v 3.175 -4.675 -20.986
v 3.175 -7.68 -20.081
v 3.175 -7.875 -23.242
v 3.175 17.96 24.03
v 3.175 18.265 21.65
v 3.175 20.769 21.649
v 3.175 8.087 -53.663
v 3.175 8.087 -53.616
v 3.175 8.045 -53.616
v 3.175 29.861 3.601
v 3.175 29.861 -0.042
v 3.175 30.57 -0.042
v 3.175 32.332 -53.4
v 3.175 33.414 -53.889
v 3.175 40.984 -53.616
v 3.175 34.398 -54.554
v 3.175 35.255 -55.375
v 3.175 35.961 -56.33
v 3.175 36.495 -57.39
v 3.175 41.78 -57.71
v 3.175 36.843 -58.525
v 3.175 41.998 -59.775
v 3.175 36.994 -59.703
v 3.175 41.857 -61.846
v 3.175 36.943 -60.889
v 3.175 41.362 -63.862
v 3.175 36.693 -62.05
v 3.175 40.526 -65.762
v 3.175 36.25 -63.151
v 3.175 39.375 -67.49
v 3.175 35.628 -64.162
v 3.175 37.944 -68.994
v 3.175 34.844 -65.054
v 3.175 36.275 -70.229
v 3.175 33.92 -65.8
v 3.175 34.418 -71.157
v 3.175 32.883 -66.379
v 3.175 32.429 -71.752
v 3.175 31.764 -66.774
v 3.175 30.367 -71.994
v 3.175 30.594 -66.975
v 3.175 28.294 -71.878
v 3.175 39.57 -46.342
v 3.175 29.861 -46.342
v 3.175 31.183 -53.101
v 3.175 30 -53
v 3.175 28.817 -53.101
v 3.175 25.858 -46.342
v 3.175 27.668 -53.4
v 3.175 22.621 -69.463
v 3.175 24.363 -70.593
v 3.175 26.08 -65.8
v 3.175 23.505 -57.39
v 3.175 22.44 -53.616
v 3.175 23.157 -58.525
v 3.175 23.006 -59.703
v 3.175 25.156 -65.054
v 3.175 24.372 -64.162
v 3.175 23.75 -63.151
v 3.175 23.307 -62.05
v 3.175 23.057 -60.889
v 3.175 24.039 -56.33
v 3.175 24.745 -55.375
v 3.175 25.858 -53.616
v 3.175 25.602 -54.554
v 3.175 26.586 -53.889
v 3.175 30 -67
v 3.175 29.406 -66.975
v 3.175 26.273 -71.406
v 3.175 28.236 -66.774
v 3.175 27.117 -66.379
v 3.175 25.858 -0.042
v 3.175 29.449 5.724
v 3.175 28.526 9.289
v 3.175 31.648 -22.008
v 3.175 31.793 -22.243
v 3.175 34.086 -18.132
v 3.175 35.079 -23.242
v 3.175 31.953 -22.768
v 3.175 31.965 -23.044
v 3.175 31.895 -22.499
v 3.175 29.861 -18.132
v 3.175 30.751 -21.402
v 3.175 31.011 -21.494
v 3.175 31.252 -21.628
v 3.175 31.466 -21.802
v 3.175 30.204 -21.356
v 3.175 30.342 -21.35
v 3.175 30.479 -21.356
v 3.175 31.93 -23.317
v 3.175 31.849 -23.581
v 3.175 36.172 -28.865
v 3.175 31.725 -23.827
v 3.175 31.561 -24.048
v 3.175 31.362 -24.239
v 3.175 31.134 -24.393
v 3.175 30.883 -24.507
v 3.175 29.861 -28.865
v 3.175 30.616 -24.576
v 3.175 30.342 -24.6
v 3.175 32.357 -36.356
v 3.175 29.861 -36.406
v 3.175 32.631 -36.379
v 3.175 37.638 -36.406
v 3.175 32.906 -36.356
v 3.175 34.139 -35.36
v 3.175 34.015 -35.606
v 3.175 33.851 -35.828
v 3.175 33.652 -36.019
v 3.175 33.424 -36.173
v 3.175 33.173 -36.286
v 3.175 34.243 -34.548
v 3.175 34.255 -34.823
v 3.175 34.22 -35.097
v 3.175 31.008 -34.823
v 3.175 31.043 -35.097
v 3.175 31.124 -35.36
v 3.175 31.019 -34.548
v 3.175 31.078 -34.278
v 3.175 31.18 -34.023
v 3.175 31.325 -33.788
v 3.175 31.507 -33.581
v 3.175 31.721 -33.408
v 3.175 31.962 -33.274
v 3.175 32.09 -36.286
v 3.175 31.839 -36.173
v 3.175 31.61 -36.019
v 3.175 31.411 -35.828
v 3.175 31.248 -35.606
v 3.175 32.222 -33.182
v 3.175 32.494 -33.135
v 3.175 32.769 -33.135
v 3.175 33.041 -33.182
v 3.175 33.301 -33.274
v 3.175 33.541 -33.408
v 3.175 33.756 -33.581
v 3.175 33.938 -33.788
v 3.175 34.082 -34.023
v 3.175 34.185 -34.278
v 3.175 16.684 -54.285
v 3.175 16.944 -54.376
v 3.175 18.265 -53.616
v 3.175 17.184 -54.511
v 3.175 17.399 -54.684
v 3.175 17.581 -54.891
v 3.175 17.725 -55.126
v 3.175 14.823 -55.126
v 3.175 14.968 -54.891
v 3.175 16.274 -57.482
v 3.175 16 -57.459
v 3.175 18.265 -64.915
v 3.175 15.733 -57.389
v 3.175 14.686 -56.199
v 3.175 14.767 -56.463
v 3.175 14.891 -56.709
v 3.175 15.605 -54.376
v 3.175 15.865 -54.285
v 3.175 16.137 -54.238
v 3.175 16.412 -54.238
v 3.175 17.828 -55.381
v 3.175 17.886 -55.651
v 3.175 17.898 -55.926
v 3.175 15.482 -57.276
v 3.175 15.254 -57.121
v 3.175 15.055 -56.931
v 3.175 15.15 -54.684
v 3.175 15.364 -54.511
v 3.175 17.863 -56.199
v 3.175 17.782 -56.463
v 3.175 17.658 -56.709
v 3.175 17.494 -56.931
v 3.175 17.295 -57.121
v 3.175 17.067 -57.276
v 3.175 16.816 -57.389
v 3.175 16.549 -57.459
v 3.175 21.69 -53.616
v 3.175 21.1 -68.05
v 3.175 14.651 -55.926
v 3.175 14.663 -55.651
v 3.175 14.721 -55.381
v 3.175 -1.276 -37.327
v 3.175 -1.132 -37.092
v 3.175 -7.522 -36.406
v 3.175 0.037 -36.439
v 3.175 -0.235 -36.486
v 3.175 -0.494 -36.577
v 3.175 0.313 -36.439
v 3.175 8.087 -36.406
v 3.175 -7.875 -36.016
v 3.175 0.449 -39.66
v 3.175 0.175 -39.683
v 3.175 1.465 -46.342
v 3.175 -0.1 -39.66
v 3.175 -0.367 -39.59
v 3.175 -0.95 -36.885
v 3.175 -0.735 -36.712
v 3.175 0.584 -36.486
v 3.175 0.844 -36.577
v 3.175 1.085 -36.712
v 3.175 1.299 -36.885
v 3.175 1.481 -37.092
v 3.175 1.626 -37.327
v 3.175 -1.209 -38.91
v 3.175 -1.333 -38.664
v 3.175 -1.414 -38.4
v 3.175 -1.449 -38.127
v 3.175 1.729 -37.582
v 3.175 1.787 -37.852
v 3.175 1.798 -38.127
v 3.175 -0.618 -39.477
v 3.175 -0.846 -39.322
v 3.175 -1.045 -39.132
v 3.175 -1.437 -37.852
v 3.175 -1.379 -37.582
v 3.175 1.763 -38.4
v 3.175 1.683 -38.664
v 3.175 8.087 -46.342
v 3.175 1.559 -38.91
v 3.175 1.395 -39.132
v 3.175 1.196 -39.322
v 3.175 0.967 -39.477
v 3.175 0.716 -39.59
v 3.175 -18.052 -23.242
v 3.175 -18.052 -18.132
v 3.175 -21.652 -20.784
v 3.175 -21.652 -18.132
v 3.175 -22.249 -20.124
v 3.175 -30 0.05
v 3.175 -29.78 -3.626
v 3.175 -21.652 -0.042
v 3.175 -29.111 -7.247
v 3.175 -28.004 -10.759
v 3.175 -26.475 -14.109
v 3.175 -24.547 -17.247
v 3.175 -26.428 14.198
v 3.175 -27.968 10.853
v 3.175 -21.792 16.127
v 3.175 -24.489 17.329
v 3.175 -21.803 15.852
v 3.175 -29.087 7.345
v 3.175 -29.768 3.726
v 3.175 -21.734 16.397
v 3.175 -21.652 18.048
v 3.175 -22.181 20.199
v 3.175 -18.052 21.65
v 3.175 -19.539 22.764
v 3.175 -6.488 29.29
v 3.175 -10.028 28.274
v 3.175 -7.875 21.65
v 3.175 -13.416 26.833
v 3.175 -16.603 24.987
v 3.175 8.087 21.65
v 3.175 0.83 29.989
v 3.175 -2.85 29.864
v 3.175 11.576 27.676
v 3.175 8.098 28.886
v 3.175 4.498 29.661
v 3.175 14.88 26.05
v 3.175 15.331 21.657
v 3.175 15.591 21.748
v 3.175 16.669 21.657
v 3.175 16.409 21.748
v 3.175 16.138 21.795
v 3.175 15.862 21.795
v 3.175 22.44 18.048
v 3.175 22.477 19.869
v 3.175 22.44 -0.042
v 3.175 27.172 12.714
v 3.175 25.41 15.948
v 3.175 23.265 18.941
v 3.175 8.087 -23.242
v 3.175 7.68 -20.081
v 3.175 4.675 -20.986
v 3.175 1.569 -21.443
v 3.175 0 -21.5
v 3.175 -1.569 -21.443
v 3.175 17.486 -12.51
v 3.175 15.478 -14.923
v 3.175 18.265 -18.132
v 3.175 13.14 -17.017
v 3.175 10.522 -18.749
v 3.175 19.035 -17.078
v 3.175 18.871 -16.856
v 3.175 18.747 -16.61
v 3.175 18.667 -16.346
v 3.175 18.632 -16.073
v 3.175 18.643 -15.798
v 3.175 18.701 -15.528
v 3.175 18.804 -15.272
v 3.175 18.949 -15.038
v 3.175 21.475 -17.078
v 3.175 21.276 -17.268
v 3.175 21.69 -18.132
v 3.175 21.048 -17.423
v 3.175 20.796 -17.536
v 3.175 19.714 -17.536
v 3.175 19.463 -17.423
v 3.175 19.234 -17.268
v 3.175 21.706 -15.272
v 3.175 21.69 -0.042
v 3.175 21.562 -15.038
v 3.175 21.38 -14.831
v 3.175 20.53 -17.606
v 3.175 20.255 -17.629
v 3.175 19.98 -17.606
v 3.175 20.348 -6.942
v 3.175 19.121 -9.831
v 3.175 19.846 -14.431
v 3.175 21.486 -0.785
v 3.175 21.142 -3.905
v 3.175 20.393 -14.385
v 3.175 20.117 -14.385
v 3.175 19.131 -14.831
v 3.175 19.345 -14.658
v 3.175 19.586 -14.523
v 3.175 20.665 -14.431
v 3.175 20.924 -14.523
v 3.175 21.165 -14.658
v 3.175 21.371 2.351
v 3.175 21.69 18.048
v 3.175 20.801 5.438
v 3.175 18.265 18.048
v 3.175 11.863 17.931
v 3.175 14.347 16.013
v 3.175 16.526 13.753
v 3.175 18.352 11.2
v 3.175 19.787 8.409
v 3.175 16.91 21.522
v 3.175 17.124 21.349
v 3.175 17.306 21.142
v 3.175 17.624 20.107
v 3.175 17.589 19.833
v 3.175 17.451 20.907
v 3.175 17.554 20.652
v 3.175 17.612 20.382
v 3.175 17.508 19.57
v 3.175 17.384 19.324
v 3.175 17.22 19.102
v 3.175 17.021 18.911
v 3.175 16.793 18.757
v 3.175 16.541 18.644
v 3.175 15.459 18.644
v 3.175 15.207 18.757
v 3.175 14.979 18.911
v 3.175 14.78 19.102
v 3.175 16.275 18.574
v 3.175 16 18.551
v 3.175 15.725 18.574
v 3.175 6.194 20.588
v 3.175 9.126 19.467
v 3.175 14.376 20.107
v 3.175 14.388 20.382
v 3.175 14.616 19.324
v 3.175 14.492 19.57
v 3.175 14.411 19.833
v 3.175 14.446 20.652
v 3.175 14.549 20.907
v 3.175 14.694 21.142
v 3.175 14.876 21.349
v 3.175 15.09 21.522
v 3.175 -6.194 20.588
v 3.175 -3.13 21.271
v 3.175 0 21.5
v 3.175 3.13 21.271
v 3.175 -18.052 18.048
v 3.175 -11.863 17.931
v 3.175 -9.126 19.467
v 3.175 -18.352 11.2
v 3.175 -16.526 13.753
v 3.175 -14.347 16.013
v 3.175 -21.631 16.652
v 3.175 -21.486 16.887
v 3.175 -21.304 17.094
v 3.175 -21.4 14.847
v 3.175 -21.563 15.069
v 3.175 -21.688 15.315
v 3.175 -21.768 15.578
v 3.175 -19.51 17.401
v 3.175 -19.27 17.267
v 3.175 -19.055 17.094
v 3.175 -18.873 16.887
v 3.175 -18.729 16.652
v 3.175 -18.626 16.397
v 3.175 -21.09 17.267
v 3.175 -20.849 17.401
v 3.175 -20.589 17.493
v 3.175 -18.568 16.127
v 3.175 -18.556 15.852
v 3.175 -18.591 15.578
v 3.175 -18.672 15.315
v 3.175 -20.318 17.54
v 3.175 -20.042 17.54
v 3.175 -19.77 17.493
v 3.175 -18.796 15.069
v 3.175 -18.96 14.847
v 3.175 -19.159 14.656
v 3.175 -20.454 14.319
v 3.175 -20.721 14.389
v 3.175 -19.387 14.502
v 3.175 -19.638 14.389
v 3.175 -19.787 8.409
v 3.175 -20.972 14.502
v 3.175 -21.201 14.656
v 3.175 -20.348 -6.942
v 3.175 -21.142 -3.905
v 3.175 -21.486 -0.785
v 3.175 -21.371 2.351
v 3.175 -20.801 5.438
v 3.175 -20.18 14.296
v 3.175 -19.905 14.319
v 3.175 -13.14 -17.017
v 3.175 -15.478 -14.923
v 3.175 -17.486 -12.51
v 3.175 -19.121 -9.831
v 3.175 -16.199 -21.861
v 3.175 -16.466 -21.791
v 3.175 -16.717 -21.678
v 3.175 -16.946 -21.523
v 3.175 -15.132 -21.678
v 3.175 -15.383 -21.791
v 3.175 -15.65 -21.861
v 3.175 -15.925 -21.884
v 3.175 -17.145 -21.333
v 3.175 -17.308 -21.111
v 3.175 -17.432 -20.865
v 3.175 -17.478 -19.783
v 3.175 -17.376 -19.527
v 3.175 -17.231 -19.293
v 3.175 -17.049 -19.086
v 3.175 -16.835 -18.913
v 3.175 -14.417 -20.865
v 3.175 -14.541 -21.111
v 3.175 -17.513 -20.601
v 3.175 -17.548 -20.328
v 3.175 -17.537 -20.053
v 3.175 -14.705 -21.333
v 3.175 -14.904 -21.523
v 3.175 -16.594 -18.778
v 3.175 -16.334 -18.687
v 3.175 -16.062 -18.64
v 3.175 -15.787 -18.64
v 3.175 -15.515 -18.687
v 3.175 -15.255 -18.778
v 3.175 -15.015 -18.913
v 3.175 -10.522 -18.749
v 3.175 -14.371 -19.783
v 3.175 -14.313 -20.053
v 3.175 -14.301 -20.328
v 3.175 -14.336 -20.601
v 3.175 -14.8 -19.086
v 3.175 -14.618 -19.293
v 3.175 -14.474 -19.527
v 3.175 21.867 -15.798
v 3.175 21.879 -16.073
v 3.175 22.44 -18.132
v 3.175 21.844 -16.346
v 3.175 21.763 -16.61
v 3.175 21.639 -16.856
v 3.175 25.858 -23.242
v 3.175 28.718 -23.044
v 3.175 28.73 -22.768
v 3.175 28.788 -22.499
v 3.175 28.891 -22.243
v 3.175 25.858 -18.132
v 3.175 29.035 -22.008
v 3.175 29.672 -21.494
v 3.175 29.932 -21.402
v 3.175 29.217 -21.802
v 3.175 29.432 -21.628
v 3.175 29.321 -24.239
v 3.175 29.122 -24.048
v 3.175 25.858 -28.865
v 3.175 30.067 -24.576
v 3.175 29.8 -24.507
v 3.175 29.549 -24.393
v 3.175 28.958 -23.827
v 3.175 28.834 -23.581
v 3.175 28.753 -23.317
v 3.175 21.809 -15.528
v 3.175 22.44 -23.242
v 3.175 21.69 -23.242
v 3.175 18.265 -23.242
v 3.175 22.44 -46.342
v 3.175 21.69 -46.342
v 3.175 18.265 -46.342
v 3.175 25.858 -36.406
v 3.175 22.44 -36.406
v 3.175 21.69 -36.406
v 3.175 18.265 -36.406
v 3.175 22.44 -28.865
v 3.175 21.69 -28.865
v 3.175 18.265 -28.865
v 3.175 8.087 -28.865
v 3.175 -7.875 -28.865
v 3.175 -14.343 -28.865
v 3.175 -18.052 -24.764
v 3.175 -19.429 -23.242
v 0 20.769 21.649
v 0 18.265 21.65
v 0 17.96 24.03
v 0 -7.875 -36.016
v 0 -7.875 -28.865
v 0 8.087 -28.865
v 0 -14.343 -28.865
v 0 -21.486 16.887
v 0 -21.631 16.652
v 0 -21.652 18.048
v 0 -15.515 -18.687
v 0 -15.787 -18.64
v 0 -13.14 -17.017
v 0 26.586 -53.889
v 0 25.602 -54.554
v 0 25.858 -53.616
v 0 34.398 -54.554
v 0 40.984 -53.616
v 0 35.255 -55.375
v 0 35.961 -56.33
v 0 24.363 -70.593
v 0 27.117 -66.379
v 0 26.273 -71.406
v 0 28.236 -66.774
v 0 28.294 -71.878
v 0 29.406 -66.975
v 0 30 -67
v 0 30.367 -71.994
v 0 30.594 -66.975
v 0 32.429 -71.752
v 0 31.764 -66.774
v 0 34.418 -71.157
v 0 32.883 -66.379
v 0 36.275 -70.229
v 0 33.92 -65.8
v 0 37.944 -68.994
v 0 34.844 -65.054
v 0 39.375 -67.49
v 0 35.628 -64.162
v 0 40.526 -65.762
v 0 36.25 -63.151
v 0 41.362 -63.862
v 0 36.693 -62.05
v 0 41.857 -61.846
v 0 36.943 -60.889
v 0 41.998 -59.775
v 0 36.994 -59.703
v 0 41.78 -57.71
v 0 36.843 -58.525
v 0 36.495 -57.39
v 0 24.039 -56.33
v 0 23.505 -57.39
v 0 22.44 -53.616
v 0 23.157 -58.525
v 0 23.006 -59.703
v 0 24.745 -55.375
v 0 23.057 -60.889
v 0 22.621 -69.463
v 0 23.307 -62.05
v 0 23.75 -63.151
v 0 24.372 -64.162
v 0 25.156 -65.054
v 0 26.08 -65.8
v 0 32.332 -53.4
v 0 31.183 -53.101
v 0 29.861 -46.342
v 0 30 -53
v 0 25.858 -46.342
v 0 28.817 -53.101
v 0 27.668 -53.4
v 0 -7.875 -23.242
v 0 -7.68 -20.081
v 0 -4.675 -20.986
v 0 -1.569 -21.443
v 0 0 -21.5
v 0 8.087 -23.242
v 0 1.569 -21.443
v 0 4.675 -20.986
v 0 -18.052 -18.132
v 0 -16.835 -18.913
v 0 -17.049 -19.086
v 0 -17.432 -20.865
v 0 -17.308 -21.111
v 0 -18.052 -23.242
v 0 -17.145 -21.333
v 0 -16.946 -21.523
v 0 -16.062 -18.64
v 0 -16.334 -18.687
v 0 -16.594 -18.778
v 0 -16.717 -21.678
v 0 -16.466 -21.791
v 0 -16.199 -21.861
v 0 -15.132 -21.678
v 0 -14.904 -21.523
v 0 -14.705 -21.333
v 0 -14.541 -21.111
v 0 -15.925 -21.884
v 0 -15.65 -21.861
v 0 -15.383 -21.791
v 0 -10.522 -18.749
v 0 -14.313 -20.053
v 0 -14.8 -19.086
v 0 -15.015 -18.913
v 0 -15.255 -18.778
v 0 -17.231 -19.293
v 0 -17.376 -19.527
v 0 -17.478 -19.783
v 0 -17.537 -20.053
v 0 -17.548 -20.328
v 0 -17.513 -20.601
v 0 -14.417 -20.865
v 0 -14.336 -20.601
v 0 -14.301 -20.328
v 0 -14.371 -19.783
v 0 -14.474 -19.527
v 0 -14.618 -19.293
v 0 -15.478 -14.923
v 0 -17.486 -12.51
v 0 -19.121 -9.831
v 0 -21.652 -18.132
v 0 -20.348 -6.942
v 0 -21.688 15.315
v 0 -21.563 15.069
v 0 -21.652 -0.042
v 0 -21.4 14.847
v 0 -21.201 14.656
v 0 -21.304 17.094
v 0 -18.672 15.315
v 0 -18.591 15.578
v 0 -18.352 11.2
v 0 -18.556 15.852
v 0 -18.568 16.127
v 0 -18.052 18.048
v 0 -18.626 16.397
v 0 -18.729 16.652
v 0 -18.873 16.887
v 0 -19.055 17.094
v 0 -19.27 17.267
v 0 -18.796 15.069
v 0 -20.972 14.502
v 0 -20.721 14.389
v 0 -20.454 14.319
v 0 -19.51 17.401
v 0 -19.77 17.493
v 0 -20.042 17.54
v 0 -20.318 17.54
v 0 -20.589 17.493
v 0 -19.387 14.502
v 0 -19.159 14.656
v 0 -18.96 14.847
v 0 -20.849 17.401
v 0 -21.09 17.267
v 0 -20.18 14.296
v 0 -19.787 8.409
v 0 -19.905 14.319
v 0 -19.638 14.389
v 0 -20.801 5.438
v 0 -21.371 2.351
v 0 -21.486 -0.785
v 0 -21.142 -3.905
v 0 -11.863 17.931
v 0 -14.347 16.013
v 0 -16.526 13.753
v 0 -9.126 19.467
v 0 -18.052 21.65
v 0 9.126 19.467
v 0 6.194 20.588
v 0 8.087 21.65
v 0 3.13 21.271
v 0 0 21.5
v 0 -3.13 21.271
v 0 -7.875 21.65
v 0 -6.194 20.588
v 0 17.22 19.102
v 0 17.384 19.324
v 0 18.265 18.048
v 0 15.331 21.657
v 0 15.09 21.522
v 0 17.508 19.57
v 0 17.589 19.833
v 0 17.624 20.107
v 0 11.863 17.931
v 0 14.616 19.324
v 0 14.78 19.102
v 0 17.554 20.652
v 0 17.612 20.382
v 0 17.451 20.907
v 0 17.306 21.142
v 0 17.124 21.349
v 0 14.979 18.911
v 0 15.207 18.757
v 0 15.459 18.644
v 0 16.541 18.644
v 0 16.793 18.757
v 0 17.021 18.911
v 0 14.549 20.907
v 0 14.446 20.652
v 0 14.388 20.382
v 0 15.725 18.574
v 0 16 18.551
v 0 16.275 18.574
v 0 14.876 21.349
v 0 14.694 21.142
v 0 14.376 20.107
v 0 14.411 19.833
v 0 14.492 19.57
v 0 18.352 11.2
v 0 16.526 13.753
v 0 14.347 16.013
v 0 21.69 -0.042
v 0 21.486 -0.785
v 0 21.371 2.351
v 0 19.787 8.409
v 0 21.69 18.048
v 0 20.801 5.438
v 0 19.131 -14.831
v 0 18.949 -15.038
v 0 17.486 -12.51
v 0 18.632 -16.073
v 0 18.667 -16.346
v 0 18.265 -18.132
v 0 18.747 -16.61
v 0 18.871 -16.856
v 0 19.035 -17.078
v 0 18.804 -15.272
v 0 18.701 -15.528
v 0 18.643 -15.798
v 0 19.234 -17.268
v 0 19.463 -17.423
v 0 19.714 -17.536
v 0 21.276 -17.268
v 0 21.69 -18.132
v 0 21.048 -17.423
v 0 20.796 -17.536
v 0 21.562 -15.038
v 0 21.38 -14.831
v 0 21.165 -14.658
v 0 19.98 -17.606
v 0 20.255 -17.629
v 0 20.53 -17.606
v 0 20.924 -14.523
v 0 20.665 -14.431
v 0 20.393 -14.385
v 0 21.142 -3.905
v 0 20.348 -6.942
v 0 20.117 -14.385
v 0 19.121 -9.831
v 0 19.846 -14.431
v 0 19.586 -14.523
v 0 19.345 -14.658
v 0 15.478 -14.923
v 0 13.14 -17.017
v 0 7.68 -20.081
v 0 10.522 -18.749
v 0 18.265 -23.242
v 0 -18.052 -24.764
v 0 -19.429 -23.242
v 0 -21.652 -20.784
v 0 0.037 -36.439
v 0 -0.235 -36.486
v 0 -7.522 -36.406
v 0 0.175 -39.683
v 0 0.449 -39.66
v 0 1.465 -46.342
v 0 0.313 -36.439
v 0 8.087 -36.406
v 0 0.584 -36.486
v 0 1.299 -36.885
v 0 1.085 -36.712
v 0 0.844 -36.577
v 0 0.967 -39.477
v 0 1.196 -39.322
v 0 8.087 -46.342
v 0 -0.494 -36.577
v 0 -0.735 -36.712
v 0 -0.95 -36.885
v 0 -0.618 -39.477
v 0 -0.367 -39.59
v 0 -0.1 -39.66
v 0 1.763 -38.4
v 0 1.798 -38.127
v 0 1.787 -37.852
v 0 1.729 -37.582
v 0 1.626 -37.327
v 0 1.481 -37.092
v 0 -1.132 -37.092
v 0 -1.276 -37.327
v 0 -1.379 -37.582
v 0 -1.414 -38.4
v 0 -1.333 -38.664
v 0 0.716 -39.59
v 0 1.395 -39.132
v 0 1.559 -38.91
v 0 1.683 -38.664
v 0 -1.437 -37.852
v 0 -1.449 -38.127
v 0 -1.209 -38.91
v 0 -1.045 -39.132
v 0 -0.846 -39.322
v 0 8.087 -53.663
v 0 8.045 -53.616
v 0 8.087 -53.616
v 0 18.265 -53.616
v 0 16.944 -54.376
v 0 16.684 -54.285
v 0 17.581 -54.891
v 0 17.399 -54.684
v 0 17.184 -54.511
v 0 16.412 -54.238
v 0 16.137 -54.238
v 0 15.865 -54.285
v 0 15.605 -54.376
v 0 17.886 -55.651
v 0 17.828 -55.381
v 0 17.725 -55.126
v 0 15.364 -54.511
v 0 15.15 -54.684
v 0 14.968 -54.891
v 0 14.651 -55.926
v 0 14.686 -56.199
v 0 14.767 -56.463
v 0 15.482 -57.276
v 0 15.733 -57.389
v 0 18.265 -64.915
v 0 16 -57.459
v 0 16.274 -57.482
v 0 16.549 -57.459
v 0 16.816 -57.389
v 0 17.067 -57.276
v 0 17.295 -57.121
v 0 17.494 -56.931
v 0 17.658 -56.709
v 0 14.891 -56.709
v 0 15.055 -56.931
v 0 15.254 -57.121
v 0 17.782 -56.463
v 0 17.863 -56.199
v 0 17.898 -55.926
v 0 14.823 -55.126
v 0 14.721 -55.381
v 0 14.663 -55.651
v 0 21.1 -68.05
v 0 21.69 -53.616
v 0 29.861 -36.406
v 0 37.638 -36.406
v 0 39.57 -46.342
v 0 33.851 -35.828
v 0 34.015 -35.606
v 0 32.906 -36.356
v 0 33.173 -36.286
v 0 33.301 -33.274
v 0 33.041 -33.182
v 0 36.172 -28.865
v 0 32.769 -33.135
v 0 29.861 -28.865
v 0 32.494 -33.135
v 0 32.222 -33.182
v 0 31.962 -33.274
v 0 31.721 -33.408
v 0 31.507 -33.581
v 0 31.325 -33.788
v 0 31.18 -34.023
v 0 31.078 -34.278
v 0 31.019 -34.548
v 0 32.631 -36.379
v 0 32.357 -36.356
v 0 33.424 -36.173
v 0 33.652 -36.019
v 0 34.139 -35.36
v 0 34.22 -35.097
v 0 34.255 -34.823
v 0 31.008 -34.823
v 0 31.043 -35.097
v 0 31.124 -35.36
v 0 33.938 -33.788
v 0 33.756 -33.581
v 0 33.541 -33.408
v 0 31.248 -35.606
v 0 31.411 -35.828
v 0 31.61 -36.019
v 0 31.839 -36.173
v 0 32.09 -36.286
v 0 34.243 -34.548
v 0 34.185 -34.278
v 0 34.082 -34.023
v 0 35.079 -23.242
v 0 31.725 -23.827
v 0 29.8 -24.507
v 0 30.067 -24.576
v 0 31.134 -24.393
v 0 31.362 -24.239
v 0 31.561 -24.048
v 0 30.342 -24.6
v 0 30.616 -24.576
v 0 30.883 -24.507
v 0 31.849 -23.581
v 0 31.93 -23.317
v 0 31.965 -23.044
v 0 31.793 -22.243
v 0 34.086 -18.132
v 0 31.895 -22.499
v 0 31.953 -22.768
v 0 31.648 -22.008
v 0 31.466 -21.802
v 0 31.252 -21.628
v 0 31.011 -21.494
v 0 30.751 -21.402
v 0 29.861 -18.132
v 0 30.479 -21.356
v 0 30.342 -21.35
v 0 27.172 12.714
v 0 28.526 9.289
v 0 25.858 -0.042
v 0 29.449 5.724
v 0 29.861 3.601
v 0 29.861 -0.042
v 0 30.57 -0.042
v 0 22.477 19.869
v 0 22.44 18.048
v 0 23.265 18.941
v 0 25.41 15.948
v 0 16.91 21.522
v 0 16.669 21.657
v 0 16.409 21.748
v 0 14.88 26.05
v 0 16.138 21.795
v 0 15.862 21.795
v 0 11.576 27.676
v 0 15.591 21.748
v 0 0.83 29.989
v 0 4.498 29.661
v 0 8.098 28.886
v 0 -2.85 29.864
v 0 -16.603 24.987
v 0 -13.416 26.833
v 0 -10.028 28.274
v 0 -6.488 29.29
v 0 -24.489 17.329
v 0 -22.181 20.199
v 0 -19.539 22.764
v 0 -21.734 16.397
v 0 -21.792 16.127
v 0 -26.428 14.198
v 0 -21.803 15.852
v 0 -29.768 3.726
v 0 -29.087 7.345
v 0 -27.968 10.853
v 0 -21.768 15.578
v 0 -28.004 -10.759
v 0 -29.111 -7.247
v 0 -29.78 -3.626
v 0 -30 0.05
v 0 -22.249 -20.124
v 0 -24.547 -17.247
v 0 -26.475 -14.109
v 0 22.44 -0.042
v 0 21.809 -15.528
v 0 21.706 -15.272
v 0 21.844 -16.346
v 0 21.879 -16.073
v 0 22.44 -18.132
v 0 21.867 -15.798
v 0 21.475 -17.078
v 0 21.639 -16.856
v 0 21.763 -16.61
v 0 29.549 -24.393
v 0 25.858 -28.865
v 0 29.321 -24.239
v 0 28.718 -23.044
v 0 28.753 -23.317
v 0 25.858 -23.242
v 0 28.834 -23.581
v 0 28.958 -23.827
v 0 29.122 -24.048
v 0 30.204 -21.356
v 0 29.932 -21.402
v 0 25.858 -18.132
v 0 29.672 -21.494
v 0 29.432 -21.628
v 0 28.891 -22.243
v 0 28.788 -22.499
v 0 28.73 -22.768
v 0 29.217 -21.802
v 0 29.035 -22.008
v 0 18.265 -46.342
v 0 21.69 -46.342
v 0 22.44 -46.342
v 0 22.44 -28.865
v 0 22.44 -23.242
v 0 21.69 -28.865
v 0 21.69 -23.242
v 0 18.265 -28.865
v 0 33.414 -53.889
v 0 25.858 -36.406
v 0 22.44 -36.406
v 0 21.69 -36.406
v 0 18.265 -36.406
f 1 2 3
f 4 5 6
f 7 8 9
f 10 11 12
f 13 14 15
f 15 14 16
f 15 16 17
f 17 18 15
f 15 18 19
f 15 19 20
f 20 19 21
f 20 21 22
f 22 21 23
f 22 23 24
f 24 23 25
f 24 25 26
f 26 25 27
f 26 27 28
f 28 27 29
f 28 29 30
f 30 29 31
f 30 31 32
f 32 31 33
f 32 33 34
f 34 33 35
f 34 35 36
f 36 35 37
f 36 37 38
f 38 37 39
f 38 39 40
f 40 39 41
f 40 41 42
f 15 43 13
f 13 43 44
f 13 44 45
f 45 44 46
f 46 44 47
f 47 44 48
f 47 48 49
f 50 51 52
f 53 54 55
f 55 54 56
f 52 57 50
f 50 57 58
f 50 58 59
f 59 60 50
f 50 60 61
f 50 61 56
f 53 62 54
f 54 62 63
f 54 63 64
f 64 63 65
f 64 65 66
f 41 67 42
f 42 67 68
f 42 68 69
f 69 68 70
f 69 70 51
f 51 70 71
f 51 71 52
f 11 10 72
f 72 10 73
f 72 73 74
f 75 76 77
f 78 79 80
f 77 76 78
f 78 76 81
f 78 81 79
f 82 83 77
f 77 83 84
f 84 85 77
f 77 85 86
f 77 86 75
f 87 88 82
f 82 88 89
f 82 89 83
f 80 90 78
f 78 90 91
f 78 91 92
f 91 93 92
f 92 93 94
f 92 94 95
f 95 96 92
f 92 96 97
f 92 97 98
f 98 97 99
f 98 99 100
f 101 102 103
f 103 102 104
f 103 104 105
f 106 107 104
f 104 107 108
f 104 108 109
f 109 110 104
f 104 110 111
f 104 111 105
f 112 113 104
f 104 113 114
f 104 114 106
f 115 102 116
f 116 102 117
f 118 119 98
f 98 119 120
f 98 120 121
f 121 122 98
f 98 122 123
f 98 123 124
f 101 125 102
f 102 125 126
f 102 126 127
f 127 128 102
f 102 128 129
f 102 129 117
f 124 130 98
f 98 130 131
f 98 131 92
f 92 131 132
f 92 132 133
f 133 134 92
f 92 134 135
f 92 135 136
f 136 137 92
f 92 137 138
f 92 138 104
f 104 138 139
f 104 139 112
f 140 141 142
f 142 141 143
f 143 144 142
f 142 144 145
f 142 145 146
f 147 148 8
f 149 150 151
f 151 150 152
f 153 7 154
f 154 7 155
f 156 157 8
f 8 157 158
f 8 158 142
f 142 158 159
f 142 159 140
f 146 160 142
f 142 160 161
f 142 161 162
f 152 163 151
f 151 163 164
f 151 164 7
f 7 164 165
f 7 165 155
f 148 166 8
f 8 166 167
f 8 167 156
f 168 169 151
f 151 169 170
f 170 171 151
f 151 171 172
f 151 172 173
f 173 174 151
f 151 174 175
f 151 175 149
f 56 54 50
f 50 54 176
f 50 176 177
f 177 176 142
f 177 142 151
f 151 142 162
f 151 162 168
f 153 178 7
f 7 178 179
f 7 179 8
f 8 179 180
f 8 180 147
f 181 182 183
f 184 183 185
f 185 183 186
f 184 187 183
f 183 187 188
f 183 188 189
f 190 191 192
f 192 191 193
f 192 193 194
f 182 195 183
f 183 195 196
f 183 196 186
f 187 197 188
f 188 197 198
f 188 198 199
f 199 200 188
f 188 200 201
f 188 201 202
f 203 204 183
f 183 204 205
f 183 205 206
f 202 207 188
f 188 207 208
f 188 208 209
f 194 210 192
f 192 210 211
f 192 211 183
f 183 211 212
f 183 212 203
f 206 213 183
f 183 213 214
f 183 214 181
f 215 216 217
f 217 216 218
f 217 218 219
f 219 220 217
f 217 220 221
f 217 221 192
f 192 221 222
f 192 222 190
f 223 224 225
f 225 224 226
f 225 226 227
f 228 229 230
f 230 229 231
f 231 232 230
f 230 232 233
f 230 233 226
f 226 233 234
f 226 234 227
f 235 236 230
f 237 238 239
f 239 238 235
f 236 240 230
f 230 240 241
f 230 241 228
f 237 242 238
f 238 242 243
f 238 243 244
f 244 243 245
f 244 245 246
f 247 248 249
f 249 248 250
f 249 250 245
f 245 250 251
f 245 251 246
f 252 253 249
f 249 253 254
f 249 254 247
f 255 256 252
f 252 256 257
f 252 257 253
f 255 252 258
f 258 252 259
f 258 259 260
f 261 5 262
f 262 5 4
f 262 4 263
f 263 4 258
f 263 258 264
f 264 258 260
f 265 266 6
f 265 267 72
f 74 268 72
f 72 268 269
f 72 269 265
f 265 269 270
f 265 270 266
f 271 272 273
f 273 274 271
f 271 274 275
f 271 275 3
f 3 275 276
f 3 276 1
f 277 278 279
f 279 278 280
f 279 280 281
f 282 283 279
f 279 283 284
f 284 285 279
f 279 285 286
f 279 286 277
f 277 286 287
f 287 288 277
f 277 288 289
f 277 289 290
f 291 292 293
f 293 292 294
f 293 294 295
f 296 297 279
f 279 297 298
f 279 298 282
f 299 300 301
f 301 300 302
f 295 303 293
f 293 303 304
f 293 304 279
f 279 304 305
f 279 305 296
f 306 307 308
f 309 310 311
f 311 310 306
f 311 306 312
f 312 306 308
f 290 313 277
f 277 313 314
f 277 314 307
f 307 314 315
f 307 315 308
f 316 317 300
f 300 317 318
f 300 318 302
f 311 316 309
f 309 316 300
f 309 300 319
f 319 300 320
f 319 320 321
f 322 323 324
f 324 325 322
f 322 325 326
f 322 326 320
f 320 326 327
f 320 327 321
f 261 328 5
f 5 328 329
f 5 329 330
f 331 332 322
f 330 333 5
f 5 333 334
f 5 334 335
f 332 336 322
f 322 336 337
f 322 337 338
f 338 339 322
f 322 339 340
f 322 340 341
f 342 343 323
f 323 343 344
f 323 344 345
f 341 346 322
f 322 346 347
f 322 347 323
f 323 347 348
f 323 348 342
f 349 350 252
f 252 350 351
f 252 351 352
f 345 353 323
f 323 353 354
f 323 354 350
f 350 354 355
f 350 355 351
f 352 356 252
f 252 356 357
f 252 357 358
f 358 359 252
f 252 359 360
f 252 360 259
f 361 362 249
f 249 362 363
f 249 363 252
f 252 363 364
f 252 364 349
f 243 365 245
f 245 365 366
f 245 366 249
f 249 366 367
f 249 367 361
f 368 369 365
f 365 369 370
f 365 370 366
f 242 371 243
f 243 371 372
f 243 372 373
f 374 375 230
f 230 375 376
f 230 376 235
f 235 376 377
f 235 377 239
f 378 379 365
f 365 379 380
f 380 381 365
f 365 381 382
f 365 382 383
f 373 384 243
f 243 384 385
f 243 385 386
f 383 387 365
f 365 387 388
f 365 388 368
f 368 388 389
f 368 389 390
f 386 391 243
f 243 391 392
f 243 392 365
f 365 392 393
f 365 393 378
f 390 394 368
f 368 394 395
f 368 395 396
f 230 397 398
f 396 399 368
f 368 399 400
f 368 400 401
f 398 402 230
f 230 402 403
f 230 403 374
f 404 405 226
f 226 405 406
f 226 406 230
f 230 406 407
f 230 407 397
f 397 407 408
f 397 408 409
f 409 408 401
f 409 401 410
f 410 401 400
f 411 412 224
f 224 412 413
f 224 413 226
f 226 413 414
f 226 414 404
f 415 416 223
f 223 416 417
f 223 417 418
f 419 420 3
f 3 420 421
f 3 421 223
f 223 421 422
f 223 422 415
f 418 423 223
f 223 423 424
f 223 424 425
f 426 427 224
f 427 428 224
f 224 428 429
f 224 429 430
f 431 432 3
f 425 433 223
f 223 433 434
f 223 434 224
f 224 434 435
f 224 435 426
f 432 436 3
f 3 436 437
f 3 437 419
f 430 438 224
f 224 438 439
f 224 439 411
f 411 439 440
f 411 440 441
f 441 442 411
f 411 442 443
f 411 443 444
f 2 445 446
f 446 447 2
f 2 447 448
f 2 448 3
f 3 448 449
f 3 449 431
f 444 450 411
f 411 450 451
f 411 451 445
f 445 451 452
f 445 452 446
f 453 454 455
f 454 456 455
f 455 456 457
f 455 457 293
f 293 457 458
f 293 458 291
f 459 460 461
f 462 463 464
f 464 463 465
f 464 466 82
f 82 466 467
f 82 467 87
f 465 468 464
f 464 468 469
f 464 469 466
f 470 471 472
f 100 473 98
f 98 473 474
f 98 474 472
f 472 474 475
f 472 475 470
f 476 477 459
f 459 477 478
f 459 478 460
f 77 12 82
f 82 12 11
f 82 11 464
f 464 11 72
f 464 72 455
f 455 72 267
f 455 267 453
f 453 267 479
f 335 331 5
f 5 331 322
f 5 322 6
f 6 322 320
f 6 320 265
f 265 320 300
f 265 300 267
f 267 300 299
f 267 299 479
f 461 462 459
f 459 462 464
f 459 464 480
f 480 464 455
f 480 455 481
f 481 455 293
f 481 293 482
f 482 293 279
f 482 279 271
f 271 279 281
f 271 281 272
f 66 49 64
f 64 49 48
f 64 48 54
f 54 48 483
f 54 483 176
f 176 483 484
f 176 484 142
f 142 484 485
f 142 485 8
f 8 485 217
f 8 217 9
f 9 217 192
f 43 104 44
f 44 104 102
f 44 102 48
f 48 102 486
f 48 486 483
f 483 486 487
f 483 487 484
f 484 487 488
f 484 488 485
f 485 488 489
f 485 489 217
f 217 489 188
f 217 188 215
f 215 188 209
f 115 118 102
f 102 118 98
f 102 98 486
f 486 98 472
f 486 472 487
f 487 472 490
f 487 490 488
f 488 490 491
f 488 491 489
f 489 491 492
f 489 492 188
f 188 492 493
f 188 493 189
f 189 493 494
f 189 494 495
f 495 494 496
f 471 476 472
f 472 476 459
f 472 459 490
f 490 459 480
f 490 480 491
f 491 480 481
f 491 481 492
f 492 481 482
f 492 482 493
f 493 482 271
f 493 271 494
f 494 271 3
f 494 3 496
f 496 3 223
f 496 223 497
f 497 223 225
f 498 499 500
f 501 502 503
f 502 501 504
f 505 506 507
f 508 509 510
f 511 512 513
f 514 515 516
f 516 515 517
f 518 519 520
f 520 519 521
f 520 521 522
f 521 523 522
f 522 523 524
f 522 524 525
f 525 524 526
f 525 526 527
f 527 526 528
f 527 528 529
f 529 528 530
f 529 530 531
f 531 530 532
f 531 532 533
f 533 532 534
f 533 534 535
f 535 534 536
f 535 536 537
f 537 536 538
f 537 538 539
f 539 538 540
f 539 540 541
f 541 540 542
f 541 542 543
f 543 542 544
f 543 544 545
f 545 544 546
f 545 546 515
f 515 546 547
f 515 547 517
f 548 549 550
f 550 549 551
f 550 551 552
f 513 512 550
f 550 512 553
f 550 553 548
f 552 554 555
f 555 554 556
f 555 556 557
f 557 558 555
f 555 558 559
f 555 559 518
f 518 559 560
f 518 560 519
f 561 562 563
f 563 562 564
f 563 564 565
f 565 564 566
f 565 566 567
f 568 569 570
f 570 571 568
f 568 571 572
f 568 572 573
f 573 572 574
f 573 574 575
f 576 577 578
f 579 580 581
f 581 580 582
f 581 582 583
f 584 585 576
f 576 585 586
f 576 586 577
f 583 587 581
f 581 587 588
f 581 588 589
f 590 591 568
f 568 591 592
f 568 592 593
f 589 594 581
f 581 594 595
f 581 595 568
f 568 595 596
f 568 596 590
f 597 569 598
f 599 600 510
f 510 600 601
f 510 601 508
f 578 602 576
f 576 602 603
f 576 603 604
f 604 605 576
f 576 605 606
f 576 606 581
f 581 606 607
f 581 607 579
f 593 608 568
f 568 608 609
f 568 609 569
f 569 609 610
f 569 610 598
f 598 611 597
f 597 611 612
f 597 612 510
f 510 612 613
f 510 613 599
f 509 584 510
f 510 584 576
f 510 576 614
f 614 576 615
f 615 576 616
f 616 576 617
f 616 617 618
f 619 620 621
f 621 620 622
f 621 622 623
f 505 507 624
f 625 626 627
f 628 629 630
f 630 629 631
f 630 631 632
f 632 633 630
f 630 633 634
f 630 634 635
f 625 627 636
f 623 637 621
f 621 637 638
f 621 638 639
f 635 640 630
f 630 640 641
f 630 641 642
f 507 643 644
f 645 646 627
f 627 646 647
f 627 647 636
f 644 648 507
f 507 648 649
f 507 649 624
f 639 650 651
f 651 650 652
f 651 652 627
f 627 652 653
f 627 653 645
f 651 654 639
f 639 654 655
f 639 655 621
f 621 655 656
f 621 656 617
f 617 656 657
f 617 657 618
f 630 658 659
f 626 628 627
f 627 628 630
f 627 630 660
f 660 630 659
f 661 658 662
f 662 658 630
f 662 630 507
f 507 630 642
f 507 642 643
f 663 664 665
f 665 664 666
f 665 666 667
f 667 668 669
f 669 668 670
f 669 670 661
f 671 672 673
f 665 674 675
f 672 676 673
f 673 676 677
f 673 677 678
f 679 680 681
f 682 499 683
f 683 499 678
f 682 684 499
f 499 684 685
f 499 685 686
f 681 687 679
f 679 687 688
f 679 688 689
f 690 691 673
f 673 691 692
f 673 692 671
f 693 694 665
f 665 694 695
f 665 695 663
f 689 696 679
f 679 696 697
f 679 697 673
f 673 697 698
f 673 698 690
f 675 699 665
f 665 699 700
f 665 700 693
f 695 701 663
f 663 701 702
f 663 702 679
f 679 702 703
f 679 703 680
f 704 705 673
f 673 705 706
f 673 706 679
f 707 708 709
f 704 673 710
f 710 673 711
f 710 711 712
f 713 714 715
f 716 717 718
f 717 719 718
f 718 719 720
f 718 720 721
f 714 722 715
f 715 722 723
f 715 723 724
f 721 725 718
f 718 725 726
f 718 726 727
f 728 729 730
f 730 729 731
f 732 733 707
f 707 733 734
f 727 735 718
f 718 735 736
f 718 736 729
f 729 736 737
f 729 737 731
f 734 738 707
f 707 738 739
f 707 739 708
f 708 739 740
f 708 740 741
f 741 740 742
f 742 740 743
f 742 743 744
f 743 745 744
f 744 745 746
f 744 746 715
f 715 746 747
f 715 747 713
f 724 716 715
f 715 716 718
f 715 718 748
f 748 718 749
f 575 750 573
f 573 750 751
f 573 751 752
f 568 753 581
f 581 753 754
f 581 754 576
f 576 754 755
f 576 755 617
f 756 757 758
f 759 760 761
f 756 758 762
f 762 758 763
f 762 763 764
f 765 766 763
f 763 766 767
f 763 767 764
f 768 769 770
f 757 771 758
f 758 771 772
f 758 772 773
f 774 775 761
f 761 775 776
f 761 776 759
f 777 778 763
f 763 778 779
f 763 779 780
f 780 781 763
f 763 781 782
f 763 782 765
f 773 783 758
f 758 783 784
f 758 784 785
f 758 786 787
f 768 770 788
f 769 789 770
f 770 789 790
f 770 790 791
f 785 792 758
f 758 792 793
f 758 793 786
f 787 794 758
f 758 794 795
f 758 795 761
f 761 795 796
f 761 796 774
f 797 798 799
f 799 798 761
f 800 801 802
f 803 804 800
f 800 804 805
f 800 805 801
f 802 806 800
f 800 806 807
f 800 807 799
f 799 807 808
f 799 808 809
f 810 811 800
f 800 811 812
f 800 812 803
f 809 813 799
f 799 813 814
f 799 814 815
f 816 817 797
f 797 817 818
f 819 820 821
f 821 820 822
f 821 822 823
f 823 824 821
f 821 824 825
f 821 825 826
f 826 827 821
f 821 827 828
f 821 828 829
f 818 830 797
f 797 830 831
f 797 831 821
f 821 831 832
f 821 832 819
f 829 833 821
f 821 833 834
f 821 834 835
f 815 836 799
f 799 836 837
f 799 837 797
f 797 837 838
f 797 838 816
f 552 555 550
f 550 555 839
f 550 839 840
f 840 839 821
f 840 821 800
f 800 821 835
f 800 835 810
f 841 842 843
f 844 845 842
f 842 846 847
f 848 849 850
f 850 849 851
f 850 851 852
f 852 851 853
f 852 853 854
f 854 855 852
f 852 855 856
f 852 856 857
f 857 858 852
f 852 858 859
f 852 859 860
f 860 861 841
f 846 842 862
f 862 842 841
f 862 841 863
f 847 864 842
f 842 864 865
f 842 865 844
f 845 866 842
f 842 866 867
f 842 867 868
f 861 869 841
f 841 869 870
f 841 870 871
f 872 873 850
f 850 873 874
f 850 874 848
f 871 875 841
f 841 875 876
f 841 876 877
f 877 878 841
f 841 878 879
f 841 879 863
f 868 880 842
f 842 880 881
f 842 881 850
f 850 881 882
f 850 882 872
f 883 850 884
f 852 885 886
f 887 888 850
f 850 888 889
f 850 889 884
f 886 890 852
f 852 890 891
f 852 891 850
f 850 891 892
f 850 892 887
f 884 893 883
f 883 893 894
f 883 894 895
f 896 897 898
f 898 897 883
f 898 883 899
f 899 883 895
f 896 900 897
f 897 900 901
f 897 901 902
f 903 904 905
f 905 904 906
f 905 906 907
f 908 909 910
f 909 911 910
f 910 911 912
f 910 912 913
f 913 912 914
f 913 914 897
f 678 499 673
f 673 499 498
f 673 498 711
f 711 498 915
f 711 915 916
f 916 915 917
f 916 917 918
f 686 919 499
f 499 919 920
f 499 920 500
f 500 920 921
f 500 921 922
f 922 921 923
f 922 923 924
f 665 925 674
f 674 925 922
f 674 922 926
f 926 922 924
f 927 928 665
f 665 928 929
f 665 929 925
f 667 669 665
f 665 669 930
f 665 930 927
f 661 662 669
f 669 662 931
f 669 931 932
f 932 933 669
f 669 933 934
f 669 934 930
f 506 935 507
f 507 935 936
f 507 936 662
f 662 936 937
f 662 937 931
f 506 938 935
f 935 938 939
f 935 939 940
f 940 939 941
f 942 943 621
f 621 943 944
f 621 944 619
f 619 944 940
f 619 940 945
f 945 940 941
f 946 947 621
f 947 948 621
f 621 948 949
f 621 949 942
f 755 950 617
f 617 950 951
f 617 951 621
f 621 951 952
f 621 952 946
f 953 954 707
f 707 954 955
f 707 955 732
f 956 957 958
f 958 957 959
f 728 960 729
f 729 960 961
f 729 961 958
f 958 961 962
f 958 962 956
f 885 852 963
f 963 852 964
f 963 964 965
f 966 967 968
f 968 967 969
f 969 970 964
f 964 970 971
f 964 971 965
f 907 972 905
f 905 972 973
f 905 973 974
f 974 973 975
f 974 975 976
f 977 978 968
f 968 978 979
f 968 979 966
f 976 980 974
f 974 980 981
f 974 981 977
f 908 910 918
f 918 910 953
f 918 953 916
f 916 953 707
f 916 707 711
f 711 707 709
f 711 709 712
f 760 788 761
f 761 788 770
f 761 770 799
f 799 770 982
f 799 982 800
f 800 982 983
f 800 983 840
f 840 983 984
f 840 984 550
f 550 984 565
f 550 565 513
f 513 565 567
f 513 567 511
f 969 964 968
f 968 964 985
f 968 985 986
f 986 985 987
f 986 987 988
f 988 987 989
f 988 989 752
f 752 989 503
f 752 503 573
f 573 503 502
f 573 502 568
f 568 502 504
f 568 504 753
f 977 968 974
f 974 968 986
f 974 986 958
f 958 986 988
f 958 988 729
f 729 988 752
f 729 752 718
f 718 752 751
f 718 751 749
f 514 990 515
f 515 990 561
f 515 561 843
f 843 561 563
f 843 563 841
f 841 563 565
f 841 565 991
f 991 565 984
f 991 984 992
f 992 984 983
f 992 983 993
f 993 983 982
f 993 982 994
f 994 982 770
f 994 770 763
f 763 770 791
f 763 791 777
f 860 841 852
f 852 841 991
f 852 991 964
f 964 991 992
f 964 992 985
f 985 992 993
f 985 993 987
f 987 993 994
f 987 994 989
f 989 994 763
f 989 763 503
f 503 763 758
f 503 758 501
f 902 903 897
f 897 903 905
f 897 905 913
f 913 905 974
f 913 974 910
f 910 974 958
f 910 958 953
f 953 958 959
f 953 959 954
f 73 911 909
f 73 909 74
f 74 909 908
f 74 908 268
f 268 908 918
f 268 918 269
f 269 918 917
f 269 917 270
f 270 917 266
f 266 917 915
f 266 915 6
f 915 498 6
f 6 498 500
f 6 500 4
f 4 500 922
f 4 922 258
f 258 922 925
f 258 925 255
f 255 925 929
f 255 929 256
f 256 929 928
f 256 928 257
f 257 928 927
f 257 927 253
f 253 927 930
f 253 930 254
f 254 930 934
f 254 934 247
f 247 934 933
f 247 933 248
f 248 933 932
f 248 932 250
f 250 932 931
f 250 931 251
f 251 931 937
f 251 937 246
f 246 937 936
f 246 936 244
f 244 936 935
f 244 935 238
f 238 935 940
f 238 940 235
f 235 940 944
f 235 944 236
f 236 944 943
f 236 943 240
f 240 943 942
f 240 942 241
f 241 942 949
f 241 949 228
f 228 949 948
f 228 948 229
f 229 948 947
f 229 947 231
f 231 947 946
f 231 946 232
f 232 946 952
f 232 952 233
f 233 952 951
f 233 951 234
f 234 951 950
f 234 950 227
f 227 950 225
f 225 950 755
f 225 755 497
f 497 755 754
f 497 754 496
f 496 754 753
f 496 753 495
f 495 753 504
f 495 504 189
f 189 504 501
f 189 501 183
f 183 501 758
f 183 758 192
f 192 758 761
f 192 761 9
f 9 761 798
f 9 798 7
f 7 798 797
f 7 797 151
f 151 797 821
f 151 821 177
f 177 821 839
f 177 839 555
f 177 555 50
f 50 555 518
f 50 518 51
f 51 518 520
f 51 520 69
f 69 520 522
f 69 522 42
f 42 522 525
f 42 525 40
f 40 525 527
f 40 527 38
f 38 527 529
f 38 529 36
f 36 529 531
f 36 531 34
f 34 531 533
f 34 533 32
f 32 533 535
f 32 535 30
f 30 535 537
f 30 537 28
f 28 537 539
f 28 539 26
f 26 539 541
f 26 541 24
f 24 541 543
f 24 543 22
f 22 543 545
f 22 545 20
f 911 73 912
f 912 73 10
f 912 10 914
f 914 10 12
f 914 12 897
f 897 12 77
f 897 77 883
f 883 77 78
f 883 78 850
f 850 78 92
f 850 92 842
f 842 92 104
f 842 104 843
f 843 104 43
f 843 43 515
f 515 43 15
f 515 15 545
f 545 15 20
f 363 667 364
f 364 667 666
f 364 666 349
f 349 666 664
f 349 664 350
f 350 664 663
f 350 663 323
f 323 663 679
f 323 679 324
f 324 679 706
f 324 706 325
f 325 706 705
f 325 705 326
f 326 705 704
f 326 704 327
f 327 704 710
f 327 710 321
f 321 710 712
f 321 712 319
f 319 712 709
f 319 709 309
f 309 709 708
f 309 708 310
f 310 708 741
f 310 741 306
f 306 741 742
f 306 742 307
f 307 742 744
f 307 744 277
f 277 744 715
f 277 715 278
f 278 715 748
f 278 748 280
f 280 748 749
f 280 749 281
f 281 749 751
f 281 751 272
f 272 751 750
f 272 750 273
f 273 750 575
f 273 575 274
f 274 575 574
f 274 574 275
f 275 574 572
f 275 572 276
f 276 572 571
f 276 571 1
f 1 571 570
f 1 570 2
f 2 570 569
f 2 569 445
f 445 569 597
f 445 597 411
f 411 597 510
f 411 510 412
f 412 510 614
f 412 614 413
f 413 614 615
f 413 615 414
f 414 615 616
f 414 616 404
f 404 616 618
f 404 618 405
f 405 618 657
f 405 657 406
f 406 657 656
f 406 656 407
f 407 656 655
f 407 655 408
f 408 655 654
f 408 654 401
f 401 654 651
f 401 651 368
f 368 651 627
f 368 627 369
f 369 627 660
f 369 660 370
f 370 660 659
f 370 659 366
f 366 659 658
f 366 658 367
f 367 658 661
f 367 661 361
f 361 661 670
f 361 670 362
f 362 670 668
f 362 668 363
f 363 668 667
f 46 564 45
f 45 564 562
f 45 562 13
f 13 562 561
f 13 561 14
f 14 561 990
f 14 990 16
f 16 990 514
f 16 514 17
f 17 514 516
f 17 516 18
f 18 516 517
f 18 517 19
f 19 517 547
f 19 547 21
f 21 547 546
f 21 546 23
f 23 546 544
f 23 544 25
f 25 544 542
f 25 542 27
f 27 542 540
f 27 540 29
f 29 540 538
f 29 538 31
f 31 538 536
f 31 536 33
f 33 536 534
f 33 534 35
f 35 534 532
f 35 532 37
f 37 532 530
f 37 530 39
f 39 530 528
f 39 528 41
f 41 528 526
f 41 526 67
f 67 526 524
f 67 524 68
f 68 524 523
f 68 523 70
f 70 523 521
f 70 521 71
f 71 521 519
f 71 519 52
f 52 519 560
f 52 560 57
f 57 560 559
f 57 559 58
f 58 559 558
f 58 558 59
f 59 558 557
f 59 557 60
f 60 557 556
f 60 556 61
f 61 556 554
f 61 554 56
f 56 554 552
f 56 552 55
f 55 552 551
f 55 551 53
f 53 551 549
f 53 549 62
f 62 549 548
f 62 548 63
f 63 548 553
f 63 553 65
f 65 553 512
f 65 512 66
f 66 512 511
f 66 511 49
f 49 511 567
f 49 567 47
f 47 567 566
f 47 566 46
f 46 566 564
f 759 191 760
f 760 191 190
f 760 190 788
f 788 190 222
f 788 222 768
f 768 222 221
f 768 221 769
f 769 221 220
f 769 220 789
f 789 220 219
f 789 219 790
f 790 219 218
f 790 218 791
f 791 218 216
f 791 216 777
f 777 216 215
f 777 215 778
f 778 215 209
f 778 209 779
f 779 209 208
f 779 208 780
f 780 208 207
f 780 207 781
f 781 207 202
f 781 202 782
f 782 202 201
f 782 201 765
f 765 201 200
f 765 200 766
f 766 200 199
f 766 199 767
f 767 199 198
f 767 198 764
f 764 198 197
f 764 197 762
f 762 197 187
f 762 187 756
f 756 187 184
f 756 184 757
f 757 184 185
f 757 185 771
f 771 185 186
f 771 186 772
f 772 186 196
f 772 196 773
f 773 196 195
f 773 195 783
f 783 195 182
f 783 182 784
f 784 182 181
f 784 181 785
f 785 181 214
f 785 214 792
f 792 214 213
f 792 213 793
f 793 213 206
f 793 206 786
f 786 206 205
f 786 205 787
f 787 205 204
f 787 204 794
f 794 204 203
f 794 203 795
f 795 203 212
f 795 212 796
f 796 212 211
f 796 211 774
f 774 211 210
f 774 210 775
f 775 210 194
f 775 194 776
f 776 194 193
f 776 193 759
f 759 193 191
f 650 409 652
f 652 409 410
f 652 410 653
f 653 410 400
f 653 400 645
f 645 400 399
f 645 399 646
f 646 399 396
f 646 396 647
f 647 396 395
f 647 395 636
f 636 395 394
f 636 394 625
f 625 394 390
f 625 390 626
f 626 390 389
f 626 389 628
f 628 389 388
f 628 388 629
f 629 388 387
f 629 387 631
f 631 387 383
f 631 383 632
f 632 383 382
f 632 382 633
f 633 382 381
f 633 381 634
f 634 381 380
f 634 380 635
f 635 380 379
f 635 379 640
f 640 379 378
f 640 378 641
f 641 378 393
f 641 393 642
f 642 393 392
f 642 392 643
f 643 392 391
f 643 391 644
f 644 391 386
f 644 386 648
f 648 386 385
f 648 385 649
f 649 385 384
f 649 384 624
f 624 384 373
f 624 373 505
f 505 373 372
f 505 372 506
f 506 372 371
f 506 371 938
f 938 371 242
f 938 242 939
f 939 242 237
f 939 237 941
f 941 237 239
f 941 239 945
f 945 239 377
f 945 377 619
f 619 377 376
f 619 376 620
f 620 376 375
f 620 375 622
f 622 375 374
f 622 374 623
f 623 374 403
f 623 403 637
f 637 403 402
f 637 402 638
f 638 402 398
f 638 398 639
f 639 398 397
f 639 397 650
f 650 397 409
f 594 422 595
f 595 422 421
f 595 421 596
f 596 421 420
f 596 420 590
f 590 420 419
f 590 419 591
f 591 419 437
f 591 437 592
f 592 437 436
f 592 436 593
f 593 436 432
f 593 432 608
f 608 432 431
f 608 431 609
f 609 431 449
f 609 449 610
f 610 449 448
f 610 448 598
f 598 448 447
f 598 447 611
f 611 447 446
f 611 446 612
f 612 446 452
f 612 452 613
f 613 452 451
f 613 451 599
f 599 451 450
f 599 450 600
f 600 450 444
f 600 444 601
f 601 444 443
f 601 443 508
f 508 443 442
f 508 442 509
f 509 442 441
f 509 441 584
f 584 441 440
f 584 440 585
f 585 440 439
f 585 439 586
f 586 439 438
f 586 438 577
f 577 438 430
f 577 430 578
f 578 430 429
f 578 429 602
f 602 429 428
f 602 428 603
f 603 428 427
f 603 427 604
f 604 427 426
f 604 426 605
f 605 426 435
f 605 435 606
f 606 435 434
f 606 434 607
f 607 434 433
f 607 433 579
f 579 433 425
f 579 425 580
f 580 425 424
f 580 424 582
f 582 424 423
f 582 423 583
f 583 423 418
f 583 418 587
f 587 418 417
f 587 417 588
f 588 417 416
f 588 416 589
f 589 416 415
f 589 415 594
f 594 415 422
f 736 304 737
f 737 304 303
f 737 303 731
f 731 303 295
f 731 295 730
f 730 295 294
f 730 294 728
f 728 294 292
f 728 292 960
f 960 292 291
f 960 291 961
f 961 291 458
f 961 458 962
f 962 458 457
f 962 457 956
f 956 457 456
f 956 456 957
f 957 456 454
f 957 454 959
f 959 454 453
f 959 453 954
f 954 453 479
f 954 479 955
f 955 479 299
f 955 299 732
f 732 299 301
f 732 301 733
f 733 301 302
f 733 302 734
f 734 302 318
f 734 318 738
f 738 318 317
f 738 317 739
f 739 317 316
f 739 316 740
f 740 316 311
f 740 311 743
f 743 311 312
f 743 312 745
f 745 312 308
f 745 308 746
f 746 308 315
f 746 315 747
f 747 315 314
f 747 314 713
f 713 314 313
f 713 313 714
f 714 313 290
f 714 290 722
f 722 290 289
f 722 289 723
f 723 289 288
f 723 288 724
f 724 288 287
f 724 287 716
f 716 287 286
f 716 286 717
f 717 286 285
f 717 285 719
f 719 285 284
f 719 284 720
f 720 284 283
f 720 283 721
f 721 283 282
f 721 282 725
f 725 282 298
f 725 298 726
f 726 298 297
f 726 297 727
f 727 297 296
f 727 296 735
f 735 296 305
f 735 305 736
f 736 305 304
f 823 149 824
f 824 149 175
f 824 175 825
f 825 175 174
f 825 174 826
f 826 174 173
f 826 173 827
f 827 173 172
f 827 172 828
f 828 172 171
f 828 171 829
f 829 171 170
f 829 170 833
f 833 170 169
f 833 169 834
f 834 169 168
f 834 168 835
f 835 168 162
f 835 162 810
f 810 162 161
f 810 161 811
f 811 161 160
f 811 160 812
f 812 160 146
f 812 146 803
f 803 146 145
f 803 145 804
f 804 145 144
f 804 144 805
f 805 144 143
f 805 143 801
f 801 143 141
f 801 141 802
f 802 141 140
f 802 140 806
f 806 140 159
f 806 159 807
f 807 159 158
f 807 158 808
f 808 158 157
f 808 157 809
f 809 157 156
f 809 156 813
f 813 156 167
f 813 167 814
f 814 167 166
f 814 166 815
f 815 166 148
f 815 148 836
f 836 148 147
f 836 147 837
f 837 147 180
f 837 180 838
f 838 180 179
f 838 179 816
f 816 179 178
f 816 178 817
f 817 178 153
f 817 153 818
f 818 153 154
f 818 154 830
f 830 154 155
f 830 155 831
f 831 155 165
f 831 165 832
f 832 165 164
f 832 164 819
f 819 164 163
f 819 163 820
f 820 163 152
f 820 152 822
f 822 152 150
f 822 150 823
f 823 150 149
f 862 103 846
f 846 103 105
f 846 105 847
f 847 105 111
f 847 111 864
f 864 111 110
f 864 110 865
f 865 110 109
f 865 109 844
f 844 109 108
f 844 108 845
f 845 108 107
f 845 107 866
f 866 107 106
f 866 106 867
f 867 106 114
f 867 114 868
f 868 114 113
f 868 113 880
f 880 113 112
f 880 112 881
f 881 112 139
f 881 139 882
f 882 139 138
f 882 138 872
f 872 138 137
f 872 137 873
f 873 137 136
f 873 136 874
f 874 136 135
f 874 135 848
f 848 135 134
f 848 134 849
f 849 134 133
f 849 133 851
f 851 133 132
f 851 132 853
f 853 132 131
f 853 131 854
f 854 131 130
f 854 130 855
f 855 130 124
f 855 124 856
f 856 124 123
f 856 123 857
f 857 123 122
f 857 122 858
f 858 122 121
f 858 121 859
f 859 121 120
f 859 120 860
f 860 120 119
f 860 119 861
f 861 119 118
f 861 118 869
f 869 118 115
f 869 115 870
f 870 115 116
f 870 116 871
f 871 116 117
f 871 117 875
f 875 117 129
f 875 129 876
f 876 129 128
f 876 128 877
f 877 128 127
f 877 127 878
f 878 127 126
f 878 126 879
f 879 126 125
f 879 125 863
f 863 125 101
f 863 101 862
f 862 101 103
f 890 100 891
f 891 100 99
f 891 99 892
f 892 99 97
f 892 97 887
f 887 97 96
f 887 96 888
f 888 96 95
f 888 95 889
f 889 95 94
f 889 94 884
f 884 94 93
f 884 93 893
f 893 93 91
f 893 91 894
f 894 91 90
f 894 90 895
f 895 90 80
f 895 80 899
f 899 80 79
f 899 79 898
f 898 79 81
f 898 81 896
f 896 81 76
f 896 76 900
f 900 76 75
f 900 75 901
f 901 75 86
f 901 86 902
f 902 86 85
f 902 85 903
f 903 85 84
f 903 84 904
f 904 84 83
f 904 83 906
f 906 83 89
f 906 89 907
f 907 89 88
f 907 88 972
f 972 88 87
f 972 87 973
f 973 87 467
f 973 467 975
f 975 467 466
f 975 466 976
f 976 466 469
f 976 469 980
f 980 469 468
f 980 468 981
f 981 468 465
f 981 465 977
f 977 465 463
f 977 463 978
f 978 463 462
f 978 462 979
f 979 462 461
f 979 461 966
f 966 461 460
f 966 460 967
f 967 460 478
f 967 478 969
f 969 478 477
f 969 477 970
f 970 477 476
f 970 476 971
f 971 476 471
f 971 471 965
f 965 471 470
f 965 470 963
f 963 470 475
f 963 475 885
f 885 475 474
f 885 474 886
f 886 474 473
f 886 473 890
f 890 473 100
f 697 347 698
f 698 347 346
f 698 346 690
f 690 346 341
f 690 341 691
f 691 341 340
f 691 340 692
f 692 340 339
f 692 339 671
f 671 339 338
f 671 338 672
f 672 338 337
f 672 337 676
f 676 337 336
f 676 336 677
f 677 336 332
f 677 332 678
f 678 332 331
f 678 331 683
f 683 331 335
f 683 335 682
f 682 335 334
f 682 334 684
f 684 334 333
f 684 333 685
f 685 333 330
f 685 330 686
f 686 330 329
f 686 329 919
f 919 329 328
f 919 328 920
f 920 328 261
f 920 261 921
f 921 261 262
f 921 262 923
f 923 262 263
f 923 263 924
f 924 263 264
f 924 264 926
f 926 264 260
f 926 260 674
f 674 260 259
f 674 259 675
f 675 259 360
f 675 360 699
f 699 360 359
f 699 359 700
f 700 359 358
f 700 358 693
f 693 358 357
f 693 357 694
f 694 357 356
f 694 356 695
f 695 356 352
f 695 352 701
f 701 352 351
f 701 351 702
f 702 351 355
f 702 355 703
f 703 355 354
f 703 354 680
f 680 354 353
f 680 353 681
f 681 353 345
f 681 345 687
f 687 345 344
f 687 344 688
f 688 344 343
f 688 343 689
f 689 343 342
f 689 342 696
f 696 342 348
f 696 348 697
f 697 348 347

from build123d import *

# Parameters (mm, degrees)
SKETCH1_R           = 21.5
SKETCH1_R_2         = 7
BOSS_EXTRUDE1_DEPTH = 3.175
SKETCH2_R           = 1.625
CUT_EXTRUDE1_DEPTH  = 84.415110292


with BuildPart() as part:
    # Sketch1 → Boss-Extrude1 (new body)
    with BuildSketch(Plane(origin=(0, 0, 0), x_dir=(0, 0, -1), z_dir=(1, 0, 0))):
        with BuildLine():
            Line((-5.724395537, 29.448791074), (57.710241785, 41.77951643))
            ThreePointArc((57.710241785, 41.77951643), (70.733126292, 35.366563146), (68.049758215, 21.10048357))
            Line((68.049758215, 21.10048357), (20.124395537, -22.248791074))
            ThreePointArc((20.124395537, -22.248791074), (-26.83281573, -13.416407865), (-5.724395537, 29.448791074))
        make_face()
        Circle(SKETCH1_R, mode=Mode.SUBTRACT)
        with Locations((60, 30)):
            Circle(SKETCH1_R_2, mode=Mode.SUBTRACT)
    extrude(amount=BOSS_EXTRUDE1_DEPTH)

    # Sketch2 → Cut-Extrude1 (cut, through all)
    with BuildSketch(Plane(origin=(3.175, 0, 0), x_dir=(0, 0, -1), z_dir=(1, 0, 0))):
        with Locations((-20.175789947, 16)):
            Circle(SKETCH2_R)
        with Locations((16.003976299, 20.255101188)):
            Circle(SKETCH2_R)
        with Locations((20.259077487, -15.924665058)):
            Circle(SKETCH2_R)
        with Locations((-15.920688759, -20.179766246)):
            Circle(SKETCH2_R)
        with Locations((38.058110346, 0.174851372)):
            Circle(SKETCH2_R)
        with Locations((55.857143206, 16.274367802)):
            Circle(SKETCH2_R)
        with Locations(Location((22.974747305, 30.341577454, 0), (0, 0, 180))):
            Circle(SKETCH2_R)
        with Locations((34.754263735, 32.631335669)):
            Circle(SKETCH2_R)
    extrude(amount=-CUT_EXTRUDE1_DEPTH, mode=Mode.SUBTRACT)


solid = part.part
